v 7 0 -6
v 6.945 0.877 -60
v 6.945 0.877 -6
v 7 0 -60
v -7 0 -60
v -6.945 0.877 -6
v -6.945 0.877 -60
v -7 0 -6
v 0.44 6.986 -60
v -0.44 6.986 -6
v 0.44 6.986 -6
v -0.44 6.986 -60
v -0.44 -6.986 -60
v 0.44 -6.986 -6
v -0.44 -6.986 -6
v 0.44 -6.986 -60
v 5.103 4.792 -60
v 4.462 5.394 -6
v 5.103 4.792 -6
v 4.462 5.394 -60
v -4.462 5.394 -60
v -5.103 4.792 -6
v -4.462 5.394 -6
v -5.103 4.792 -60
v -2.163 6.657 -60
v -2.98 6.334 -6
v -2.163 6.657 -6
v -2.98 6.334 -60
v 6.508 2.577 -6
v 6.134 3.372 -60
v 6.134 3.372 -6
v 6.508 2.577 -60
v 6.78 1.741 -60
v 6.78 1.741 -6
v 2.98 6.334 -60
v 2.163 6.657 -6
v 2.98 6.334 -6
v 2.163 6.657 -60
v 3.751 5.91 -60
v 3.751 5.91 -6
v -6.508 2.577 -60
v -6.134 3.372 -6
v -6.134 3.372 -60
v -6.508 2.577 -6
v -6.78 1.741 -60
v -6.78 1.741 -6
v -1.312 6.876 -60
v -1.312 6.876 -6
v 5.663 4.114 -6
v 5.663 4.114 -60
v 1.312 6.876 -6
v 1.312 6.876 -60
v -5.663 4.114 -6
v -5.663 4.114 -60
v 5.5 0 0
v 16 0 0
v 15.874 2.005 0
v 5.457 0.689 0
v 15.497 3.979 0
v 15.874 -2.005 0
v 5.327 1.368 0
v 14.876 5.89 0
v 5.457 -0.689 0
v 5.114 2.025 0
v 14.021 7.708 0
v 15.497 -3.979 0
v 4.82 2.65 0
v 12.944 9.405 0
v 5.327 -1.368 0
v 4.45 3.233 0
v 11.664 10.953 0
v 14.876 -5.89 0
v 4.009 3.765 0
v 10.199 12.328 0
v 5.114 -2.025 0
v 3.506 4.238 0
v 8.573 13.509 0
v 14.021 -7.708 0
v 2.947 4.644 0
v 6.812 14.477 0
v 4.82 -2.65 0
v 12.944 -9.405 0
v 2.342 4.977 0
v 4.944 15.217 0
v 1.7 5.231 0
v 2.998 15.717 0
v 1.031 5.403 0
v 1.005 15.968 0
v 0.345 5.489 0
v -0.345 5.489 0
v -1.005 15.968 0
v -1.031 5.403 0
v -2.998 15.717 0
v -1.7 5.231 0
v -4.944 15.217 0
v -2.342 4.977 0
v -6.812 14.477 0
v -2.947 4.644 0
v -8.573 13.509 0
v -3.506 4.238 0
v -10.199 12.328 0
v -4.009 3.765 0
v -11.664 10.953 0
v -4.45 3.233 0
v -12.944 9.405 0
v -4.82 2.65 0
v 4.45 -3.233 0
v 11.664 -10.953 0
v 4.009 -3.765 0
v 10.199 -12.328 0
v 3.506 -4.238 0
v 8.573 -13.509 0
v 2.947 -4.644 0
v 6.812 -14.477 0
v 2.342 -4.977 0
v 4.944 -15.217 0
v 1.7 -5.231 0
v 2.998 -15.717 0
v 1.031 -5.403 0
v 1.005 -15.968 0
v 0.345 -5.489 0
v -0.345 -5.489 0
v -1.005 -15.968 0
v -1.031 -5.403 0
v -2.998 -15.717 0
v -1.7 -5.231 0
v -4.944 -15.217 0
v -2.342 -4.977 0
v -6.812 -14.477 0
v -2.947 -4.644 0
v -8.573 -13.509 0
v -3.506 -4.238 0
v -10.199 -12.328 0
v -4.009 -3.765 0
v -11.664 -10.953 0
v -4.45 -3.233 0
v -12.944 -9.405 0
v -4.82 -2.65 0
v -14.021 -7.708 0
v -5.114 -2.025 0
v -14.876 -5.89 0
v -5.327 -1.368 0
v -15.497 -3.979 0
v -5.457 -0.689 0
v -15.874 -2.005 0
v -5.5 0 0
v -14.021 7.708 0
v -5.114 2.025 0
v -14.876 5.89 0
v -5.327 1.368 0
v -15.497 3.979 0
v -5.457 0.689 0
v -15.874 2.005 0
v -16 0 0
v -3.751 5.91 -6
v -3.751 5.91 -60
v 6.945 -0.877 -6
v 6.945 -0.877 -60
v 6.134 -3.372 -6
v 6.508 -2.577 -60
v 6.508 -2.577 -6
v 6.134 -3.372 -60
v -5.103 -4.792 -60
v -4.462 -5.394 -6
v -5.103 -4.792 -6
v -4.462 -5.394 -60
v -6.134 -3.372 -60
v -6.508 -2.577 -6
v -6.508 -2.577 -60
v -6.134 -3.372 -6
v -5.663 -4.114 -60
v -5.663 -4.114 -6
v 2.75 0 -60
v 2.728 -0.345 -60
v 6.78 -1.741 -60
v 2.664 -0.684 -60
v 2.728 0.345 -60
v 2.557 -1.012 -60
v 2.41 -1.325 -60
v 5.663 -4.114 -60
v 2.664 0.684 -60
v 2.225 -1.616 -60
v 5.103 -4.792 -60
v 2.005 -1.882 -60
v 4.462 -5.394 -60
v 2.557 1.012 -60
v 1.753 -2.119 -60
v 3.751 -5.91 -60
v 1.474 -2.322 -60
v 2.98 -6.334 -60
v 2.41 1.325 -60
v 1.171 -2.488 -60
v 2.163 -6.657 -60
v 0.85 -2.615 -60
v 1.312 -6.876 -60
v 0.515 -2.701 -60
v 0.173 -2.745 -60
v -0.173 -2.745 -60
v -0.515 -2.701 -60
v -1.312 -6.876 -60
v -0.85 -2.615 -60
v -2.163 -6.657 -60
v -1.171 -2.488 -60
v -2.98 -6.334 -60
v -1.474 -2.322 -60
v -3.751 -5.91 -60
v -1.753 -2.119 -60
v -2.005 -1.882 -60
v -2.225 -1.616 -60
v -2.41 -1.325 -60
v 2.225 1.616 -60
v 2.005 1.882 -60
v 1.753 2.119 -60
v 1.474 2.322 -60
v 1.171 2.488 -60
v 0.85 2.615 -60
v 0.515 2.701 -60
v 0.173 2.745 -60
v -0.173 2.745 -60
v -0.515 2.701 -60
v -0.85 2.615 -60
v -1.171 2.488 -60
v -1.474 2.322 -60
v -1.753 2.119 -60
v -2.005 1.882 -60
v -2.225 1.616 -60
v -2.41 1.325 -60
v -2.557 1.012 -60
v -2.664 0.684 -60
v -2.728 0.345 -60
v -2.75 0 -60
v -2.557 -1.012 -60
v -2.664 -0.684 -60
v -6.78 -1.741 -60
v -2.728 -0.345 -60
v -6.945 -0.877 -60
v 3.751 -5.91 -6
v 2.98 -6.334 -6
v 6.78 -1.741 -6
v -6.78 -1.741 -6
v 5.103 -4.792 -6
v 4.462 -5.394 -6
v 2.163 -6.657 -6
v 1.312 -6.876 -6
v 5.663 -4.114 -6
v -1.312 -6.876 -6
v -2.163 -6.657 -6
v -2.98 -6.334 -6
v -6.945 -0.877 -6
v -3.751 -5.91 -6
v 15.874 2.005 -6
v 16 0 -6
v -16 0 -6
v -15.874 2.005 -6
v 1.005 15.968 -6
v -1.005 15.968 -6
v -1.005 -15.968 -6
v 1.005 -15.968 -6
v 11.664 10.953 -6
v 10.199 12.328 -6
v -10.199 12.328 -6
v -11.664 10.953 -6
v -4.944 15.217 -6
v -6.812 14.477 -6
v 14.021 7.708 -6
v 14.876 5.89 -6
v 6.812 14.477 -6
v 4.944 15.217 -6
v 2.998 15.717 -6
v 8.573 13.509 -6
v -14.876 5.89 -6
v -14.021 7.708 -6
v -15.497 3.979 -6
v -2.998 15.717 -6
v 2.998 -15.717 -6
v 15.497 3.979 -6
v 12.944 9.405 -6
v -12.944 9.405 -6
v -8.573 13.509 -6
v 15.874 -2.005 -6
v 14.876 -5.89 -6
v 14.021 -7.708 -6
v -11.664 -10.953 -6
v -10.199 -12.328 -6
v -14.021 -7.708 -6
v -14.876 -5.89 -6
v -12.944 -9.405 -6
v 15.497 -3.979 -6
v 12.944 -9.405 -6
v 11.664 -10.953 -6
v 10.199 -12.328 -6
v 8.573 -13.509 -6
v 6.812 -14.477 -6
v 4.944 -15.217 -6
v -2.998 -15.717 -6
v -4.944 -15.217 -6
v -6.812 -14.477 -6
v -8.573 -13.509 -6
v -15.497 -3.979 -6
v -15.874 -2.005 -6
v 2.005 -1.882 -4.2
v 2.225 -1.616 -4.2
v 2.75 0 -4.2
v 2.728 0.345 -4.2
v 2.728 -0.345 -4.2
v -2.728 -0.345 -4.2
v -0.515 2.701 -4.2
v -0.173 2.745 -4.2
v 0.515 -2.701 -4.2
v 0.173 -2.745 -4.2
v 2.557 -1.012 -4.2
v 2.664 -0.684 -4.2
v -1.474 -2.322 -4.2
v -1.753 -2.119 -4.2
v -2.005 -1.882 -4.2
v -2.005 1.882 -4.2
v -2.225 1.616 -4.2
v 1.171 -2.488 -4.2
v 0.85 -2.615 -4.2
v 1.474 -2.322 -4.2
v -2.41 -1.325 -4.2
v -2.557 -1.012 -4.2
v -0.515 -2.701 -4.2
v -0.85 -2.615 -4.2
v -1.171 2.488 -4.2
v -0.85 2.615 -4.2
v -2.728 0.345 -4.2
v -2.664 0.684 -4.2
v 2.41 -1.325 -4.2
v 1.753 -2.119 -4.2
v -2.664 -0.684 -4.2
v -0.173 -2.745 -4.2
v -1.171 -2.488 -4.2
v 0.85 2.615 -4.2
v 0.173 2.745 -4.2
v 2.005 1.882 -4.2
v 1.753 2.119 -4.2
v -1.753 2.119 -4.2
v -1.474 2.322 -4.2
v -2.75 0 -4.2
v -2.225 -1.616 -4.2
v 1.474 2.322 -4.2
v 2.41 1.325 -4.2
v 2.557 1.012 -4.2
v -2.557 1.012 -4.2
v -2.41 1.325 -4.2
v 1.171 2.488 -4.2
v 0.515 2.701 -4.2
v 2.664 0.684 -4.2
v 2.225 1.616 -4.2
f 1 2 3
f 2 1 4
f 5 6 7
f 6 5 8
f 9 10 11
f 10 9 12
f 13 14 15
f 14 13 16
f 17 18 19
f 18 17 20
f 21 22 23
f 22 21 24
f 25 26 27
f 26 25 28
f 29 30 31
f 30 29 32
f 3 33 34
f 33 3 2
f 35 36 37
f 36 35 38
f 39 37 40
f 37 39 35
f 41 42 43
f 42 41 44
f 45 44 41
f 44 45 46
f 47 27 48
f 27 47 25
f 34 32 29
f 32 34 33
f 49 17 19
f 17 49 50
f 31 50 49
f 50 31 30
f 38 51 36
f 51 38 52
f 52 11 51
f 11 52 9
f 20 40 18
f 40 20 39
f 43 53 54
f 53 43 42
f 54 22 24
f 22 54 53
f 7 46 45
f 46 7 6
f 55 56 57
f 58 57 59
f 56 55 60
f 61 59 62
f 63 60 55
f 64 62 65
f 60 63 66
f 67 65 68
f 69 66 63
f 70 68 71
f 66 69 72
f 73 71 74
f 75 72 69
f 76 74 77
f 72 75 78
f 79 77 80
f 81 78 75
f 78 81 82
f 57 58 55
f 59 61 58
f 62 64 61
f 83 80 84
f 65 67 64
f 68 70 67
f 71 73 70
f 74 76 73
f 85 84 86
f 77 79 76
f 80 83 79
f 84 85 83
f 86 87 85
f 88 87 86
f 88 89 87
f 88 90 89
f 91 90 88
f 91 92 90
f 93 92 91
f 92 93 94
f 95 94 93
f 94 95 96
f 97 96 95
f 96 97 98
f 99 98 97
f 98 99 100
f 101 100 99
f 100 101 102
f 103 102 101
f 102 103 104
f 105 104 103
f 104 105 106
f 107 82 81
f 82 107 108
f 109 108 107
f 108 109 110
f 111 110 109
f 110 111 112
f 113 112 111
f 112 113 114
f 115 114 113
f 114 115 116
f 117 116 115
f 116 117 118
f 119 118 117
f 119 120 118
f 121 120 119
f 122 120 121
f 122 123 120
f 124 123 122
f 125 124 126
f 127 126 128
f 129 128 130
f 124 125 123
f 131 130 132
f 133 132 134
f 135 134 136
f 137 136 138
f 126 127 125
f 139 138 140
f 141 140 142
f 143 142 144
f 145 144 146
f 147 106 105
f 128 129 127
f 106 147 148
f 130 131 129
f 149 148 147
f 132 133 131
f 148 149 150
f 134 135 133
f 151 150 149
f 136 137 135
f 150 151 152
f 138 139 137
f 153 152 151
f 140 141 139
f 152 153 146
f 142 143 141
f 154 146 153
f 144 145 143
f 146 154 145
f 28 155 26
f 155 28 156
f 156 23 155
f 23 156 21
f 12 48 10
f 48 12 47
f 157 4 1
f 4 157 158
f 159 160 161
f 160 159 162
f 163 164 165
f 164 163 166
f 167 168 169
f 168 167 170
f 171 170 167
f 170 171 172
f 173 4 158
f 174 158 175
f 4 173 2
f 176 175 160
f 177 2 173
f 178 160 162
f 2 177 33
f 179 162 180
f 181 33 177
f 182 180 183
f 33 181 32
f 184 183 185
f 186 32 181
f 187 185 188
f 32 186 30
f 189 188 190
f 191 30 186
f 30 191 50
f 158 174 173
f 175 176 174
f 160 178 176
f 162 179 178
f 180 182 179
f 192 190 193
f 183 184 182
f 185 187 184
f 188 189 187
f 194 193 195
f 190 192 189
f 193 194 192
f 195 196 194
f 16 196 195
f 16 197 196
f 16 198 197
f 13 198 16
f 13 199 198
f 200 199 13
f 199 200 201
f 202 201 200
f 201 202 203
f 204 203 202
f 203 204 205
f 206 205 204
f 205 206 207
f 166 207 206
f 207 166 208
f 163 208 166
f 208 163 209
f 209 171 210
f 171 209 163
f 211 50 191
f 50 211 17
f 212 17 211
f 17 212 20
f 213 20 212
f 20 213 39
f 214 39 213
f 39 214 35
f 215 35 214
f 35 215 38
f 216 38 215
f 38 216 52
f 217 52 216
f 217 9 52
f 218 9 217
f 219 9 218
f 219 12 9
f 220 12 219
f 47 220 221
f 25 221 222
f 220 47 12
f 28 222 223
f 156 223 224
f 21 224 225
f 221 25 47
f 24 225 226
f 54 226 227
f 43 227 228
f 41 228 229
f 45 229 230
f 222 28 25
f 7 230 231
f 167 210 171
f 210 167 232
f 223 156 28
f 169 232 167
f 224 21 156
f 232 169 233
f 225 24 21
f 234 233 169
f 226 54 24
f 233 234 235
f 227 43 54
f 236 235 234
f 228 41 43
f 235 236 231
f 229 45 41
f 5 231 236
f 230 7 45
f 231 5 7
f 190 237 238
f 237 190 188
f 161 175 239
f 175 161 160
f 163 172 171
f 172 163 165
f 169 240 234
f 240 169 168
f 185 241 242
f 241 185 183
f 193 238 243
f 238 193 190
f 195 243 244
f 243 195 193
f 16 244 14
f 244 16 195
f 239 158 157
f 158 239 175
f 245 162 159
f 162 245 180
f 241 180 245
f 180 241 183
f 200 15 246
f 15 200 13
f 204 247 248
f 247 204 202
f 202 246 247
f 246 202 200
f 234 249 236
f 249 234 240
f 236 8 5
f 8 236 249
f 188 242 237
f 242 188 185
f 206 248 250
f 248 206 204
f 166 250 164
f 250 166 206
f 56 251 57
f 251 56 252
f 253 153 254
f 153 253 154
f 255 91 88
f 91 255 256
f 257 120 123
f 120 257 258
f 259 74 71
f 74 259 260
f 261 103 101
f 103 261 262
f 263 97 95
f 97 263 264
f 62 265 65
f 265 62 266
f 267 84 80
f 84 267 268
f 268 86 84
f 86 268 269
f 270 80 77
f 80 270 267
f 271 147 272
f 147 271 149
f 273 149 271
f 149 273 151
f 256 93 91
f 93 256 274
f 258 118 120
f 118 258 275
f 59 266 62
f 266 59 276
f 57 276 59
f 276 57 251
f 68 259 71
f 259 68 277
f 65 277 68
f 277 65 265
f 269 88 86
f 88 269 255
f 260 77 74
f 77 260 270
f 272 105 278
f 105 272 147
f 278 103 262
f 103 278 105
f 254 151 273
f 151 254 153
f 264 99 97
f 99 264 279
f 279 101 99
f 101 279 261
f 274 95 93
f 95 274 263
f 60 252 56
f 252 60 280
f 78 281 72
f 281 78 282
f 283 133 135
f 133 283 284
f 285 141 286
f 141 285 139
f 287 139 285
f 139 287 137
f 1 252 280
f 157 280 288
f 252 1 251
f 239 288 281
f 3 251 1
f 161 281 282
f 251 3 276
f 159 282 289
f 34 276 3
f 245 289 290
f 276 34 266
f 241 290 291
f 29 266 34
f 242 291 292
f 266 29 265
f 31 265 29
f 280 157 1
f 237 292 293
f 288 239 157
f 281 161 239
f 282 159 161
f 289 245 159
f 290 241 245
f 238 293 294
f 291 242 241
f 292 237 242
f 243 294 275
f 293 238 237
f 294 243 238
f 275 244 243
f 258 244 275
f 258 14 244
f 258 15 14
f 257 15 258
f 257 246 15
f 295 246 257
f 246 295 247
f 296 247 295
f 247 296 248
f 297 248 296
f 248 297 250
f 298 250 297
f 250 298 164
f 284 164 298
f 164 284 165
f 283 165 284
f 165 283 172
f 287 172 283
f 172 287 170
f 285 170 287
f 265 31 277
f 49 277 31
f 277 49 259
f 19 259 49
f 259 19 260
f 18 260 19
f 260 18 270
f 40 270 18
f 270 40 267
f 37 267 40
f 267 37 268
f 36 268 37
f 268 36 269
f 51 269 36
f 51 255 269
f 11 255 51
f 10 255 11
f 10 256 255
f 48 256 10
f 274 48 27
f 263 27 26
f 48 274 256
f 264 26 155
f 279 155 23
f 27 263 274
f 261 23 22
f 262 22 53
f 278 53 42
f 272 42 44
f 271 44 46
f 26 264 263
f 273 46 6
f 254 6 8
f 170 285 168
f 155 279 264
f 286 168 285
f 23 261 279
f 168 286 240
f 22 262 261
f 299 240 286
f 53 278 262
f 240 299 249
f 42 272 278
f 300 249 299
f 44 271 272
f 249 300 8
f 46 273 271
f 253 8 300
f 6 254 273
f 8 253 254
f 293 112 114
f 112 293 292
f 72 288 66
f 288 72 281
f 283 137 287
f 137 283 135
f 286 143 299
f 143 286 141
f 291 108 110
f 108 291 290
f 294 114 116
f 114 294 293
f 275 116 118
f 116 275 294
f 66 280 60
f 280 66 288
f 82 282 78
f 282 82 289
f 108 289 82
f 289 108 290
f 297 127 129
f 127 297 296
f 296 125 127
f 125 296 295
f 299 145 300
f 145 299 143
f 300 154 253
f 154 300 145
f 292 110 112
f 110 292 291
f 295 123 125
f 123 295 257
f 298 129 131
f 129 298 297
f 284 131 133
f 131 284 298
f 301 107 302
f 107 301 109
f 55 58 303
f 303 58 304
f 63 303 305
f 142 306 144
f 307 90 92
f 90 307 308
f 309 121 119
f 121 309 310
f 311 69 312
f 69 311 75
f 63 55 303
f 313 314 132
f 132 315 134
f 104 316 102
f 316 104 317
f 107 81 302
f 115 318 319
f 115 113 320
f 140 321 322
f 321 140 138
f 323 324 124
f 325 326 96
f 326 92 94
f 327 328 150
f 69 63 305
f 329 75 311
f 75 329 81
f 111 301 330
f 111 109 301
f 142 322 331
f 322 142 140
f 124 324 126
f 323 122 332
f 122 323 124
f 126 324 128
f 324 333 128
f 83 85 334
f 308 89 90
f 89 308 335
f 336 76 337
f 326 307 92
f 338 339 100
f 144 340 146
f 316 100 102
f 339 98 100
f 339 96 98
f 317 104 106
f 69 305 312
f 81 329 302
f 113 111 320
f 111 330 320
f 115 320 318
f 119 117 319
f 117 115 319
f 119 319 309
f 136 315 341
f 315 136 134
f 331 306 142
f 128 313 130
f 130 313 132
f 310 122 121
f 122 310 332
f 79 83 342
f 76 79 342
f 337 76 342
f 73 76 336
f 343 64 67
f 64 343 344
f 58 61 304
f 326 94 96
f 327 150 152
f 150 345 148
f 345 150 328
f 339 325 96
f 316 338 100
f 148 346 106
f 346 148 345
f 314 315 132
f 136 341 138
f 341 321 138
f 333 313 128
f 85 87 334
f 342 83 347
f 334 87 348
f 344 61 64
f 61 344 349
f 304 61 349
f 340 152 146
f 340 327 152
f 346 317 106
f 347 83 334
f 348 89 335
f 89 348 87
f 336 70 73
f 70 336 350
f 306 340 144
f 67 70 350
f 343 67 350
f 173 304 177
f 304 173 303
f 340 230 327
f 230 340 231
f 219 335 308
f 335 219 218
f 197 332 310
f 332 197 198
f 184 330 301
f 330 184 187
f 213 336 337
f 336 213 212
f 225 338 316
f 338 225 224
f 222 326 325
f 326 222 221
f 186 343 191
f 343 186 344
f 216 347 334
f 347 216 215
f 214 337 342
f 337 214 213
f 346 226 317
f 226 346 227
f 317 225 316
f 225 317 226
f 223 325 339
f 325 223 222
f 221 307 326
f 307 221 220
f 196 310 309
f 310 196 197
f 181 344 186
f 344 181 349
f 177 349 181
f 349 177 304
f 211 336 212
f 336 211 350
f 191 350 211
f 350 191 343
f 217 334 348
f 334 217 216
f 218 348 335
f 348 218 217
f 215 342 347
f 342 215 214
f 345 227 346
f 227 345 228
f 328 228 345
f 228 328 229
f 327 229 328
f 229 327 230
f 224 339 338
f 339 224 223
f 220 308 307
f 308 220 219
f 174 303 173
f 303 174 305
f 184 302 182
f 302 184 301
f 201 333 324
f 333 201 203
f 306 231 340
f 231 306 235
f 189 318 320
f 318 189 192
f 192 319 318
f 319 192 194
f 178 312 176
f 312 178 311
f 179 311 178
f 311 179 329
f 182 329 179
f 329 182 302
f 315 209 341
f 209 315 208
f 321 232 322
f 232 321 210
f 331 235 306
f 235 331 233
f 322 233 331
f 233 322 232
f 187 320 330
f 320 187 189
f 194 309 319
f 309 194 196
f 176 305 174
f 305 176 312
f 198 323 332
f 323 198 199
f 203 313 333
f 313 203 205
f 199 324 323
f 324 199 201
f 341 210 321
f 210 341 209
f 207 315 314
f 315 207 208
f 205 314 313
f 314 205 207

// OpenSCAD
$fn = 50;


difference() {
	union() {
		translate(v = [0, 0, -60.0000000000]) {
			cylinder(h = 60, r = 7.0000000000);
		}
		translate(v = [0, 0, -6.0000000000]) {
			cylinder(h = 6, r = 16.0000000000);
		}
	}
	union() {
		translate(v = [0, 0, 0]) {
			rotate(a = [0, 0, 0]) {
				difference() {
					union() {
						#translate(v = [0, 0, -60.0000000000]) {
							cylinder(h = 60, r = 2.2500000000);
						}
						#translate(v = [0, 0, -4.2000000000]) {
							cylinder(h = 4.2000000000, r1 = 2.7500000000, r2 = 5.5000000000);
						}
						#translate(v = [0, 0, -60.0000000000]) {
							cylinder(h = 60, r = 2.7500000000);
						}
						#translate(v = [0, 0, -60.0000000000]) {
							cylinder(h = 60, r = 2.2500000000);
						}
					}
					union();
				}
			}
		}
	}
}
